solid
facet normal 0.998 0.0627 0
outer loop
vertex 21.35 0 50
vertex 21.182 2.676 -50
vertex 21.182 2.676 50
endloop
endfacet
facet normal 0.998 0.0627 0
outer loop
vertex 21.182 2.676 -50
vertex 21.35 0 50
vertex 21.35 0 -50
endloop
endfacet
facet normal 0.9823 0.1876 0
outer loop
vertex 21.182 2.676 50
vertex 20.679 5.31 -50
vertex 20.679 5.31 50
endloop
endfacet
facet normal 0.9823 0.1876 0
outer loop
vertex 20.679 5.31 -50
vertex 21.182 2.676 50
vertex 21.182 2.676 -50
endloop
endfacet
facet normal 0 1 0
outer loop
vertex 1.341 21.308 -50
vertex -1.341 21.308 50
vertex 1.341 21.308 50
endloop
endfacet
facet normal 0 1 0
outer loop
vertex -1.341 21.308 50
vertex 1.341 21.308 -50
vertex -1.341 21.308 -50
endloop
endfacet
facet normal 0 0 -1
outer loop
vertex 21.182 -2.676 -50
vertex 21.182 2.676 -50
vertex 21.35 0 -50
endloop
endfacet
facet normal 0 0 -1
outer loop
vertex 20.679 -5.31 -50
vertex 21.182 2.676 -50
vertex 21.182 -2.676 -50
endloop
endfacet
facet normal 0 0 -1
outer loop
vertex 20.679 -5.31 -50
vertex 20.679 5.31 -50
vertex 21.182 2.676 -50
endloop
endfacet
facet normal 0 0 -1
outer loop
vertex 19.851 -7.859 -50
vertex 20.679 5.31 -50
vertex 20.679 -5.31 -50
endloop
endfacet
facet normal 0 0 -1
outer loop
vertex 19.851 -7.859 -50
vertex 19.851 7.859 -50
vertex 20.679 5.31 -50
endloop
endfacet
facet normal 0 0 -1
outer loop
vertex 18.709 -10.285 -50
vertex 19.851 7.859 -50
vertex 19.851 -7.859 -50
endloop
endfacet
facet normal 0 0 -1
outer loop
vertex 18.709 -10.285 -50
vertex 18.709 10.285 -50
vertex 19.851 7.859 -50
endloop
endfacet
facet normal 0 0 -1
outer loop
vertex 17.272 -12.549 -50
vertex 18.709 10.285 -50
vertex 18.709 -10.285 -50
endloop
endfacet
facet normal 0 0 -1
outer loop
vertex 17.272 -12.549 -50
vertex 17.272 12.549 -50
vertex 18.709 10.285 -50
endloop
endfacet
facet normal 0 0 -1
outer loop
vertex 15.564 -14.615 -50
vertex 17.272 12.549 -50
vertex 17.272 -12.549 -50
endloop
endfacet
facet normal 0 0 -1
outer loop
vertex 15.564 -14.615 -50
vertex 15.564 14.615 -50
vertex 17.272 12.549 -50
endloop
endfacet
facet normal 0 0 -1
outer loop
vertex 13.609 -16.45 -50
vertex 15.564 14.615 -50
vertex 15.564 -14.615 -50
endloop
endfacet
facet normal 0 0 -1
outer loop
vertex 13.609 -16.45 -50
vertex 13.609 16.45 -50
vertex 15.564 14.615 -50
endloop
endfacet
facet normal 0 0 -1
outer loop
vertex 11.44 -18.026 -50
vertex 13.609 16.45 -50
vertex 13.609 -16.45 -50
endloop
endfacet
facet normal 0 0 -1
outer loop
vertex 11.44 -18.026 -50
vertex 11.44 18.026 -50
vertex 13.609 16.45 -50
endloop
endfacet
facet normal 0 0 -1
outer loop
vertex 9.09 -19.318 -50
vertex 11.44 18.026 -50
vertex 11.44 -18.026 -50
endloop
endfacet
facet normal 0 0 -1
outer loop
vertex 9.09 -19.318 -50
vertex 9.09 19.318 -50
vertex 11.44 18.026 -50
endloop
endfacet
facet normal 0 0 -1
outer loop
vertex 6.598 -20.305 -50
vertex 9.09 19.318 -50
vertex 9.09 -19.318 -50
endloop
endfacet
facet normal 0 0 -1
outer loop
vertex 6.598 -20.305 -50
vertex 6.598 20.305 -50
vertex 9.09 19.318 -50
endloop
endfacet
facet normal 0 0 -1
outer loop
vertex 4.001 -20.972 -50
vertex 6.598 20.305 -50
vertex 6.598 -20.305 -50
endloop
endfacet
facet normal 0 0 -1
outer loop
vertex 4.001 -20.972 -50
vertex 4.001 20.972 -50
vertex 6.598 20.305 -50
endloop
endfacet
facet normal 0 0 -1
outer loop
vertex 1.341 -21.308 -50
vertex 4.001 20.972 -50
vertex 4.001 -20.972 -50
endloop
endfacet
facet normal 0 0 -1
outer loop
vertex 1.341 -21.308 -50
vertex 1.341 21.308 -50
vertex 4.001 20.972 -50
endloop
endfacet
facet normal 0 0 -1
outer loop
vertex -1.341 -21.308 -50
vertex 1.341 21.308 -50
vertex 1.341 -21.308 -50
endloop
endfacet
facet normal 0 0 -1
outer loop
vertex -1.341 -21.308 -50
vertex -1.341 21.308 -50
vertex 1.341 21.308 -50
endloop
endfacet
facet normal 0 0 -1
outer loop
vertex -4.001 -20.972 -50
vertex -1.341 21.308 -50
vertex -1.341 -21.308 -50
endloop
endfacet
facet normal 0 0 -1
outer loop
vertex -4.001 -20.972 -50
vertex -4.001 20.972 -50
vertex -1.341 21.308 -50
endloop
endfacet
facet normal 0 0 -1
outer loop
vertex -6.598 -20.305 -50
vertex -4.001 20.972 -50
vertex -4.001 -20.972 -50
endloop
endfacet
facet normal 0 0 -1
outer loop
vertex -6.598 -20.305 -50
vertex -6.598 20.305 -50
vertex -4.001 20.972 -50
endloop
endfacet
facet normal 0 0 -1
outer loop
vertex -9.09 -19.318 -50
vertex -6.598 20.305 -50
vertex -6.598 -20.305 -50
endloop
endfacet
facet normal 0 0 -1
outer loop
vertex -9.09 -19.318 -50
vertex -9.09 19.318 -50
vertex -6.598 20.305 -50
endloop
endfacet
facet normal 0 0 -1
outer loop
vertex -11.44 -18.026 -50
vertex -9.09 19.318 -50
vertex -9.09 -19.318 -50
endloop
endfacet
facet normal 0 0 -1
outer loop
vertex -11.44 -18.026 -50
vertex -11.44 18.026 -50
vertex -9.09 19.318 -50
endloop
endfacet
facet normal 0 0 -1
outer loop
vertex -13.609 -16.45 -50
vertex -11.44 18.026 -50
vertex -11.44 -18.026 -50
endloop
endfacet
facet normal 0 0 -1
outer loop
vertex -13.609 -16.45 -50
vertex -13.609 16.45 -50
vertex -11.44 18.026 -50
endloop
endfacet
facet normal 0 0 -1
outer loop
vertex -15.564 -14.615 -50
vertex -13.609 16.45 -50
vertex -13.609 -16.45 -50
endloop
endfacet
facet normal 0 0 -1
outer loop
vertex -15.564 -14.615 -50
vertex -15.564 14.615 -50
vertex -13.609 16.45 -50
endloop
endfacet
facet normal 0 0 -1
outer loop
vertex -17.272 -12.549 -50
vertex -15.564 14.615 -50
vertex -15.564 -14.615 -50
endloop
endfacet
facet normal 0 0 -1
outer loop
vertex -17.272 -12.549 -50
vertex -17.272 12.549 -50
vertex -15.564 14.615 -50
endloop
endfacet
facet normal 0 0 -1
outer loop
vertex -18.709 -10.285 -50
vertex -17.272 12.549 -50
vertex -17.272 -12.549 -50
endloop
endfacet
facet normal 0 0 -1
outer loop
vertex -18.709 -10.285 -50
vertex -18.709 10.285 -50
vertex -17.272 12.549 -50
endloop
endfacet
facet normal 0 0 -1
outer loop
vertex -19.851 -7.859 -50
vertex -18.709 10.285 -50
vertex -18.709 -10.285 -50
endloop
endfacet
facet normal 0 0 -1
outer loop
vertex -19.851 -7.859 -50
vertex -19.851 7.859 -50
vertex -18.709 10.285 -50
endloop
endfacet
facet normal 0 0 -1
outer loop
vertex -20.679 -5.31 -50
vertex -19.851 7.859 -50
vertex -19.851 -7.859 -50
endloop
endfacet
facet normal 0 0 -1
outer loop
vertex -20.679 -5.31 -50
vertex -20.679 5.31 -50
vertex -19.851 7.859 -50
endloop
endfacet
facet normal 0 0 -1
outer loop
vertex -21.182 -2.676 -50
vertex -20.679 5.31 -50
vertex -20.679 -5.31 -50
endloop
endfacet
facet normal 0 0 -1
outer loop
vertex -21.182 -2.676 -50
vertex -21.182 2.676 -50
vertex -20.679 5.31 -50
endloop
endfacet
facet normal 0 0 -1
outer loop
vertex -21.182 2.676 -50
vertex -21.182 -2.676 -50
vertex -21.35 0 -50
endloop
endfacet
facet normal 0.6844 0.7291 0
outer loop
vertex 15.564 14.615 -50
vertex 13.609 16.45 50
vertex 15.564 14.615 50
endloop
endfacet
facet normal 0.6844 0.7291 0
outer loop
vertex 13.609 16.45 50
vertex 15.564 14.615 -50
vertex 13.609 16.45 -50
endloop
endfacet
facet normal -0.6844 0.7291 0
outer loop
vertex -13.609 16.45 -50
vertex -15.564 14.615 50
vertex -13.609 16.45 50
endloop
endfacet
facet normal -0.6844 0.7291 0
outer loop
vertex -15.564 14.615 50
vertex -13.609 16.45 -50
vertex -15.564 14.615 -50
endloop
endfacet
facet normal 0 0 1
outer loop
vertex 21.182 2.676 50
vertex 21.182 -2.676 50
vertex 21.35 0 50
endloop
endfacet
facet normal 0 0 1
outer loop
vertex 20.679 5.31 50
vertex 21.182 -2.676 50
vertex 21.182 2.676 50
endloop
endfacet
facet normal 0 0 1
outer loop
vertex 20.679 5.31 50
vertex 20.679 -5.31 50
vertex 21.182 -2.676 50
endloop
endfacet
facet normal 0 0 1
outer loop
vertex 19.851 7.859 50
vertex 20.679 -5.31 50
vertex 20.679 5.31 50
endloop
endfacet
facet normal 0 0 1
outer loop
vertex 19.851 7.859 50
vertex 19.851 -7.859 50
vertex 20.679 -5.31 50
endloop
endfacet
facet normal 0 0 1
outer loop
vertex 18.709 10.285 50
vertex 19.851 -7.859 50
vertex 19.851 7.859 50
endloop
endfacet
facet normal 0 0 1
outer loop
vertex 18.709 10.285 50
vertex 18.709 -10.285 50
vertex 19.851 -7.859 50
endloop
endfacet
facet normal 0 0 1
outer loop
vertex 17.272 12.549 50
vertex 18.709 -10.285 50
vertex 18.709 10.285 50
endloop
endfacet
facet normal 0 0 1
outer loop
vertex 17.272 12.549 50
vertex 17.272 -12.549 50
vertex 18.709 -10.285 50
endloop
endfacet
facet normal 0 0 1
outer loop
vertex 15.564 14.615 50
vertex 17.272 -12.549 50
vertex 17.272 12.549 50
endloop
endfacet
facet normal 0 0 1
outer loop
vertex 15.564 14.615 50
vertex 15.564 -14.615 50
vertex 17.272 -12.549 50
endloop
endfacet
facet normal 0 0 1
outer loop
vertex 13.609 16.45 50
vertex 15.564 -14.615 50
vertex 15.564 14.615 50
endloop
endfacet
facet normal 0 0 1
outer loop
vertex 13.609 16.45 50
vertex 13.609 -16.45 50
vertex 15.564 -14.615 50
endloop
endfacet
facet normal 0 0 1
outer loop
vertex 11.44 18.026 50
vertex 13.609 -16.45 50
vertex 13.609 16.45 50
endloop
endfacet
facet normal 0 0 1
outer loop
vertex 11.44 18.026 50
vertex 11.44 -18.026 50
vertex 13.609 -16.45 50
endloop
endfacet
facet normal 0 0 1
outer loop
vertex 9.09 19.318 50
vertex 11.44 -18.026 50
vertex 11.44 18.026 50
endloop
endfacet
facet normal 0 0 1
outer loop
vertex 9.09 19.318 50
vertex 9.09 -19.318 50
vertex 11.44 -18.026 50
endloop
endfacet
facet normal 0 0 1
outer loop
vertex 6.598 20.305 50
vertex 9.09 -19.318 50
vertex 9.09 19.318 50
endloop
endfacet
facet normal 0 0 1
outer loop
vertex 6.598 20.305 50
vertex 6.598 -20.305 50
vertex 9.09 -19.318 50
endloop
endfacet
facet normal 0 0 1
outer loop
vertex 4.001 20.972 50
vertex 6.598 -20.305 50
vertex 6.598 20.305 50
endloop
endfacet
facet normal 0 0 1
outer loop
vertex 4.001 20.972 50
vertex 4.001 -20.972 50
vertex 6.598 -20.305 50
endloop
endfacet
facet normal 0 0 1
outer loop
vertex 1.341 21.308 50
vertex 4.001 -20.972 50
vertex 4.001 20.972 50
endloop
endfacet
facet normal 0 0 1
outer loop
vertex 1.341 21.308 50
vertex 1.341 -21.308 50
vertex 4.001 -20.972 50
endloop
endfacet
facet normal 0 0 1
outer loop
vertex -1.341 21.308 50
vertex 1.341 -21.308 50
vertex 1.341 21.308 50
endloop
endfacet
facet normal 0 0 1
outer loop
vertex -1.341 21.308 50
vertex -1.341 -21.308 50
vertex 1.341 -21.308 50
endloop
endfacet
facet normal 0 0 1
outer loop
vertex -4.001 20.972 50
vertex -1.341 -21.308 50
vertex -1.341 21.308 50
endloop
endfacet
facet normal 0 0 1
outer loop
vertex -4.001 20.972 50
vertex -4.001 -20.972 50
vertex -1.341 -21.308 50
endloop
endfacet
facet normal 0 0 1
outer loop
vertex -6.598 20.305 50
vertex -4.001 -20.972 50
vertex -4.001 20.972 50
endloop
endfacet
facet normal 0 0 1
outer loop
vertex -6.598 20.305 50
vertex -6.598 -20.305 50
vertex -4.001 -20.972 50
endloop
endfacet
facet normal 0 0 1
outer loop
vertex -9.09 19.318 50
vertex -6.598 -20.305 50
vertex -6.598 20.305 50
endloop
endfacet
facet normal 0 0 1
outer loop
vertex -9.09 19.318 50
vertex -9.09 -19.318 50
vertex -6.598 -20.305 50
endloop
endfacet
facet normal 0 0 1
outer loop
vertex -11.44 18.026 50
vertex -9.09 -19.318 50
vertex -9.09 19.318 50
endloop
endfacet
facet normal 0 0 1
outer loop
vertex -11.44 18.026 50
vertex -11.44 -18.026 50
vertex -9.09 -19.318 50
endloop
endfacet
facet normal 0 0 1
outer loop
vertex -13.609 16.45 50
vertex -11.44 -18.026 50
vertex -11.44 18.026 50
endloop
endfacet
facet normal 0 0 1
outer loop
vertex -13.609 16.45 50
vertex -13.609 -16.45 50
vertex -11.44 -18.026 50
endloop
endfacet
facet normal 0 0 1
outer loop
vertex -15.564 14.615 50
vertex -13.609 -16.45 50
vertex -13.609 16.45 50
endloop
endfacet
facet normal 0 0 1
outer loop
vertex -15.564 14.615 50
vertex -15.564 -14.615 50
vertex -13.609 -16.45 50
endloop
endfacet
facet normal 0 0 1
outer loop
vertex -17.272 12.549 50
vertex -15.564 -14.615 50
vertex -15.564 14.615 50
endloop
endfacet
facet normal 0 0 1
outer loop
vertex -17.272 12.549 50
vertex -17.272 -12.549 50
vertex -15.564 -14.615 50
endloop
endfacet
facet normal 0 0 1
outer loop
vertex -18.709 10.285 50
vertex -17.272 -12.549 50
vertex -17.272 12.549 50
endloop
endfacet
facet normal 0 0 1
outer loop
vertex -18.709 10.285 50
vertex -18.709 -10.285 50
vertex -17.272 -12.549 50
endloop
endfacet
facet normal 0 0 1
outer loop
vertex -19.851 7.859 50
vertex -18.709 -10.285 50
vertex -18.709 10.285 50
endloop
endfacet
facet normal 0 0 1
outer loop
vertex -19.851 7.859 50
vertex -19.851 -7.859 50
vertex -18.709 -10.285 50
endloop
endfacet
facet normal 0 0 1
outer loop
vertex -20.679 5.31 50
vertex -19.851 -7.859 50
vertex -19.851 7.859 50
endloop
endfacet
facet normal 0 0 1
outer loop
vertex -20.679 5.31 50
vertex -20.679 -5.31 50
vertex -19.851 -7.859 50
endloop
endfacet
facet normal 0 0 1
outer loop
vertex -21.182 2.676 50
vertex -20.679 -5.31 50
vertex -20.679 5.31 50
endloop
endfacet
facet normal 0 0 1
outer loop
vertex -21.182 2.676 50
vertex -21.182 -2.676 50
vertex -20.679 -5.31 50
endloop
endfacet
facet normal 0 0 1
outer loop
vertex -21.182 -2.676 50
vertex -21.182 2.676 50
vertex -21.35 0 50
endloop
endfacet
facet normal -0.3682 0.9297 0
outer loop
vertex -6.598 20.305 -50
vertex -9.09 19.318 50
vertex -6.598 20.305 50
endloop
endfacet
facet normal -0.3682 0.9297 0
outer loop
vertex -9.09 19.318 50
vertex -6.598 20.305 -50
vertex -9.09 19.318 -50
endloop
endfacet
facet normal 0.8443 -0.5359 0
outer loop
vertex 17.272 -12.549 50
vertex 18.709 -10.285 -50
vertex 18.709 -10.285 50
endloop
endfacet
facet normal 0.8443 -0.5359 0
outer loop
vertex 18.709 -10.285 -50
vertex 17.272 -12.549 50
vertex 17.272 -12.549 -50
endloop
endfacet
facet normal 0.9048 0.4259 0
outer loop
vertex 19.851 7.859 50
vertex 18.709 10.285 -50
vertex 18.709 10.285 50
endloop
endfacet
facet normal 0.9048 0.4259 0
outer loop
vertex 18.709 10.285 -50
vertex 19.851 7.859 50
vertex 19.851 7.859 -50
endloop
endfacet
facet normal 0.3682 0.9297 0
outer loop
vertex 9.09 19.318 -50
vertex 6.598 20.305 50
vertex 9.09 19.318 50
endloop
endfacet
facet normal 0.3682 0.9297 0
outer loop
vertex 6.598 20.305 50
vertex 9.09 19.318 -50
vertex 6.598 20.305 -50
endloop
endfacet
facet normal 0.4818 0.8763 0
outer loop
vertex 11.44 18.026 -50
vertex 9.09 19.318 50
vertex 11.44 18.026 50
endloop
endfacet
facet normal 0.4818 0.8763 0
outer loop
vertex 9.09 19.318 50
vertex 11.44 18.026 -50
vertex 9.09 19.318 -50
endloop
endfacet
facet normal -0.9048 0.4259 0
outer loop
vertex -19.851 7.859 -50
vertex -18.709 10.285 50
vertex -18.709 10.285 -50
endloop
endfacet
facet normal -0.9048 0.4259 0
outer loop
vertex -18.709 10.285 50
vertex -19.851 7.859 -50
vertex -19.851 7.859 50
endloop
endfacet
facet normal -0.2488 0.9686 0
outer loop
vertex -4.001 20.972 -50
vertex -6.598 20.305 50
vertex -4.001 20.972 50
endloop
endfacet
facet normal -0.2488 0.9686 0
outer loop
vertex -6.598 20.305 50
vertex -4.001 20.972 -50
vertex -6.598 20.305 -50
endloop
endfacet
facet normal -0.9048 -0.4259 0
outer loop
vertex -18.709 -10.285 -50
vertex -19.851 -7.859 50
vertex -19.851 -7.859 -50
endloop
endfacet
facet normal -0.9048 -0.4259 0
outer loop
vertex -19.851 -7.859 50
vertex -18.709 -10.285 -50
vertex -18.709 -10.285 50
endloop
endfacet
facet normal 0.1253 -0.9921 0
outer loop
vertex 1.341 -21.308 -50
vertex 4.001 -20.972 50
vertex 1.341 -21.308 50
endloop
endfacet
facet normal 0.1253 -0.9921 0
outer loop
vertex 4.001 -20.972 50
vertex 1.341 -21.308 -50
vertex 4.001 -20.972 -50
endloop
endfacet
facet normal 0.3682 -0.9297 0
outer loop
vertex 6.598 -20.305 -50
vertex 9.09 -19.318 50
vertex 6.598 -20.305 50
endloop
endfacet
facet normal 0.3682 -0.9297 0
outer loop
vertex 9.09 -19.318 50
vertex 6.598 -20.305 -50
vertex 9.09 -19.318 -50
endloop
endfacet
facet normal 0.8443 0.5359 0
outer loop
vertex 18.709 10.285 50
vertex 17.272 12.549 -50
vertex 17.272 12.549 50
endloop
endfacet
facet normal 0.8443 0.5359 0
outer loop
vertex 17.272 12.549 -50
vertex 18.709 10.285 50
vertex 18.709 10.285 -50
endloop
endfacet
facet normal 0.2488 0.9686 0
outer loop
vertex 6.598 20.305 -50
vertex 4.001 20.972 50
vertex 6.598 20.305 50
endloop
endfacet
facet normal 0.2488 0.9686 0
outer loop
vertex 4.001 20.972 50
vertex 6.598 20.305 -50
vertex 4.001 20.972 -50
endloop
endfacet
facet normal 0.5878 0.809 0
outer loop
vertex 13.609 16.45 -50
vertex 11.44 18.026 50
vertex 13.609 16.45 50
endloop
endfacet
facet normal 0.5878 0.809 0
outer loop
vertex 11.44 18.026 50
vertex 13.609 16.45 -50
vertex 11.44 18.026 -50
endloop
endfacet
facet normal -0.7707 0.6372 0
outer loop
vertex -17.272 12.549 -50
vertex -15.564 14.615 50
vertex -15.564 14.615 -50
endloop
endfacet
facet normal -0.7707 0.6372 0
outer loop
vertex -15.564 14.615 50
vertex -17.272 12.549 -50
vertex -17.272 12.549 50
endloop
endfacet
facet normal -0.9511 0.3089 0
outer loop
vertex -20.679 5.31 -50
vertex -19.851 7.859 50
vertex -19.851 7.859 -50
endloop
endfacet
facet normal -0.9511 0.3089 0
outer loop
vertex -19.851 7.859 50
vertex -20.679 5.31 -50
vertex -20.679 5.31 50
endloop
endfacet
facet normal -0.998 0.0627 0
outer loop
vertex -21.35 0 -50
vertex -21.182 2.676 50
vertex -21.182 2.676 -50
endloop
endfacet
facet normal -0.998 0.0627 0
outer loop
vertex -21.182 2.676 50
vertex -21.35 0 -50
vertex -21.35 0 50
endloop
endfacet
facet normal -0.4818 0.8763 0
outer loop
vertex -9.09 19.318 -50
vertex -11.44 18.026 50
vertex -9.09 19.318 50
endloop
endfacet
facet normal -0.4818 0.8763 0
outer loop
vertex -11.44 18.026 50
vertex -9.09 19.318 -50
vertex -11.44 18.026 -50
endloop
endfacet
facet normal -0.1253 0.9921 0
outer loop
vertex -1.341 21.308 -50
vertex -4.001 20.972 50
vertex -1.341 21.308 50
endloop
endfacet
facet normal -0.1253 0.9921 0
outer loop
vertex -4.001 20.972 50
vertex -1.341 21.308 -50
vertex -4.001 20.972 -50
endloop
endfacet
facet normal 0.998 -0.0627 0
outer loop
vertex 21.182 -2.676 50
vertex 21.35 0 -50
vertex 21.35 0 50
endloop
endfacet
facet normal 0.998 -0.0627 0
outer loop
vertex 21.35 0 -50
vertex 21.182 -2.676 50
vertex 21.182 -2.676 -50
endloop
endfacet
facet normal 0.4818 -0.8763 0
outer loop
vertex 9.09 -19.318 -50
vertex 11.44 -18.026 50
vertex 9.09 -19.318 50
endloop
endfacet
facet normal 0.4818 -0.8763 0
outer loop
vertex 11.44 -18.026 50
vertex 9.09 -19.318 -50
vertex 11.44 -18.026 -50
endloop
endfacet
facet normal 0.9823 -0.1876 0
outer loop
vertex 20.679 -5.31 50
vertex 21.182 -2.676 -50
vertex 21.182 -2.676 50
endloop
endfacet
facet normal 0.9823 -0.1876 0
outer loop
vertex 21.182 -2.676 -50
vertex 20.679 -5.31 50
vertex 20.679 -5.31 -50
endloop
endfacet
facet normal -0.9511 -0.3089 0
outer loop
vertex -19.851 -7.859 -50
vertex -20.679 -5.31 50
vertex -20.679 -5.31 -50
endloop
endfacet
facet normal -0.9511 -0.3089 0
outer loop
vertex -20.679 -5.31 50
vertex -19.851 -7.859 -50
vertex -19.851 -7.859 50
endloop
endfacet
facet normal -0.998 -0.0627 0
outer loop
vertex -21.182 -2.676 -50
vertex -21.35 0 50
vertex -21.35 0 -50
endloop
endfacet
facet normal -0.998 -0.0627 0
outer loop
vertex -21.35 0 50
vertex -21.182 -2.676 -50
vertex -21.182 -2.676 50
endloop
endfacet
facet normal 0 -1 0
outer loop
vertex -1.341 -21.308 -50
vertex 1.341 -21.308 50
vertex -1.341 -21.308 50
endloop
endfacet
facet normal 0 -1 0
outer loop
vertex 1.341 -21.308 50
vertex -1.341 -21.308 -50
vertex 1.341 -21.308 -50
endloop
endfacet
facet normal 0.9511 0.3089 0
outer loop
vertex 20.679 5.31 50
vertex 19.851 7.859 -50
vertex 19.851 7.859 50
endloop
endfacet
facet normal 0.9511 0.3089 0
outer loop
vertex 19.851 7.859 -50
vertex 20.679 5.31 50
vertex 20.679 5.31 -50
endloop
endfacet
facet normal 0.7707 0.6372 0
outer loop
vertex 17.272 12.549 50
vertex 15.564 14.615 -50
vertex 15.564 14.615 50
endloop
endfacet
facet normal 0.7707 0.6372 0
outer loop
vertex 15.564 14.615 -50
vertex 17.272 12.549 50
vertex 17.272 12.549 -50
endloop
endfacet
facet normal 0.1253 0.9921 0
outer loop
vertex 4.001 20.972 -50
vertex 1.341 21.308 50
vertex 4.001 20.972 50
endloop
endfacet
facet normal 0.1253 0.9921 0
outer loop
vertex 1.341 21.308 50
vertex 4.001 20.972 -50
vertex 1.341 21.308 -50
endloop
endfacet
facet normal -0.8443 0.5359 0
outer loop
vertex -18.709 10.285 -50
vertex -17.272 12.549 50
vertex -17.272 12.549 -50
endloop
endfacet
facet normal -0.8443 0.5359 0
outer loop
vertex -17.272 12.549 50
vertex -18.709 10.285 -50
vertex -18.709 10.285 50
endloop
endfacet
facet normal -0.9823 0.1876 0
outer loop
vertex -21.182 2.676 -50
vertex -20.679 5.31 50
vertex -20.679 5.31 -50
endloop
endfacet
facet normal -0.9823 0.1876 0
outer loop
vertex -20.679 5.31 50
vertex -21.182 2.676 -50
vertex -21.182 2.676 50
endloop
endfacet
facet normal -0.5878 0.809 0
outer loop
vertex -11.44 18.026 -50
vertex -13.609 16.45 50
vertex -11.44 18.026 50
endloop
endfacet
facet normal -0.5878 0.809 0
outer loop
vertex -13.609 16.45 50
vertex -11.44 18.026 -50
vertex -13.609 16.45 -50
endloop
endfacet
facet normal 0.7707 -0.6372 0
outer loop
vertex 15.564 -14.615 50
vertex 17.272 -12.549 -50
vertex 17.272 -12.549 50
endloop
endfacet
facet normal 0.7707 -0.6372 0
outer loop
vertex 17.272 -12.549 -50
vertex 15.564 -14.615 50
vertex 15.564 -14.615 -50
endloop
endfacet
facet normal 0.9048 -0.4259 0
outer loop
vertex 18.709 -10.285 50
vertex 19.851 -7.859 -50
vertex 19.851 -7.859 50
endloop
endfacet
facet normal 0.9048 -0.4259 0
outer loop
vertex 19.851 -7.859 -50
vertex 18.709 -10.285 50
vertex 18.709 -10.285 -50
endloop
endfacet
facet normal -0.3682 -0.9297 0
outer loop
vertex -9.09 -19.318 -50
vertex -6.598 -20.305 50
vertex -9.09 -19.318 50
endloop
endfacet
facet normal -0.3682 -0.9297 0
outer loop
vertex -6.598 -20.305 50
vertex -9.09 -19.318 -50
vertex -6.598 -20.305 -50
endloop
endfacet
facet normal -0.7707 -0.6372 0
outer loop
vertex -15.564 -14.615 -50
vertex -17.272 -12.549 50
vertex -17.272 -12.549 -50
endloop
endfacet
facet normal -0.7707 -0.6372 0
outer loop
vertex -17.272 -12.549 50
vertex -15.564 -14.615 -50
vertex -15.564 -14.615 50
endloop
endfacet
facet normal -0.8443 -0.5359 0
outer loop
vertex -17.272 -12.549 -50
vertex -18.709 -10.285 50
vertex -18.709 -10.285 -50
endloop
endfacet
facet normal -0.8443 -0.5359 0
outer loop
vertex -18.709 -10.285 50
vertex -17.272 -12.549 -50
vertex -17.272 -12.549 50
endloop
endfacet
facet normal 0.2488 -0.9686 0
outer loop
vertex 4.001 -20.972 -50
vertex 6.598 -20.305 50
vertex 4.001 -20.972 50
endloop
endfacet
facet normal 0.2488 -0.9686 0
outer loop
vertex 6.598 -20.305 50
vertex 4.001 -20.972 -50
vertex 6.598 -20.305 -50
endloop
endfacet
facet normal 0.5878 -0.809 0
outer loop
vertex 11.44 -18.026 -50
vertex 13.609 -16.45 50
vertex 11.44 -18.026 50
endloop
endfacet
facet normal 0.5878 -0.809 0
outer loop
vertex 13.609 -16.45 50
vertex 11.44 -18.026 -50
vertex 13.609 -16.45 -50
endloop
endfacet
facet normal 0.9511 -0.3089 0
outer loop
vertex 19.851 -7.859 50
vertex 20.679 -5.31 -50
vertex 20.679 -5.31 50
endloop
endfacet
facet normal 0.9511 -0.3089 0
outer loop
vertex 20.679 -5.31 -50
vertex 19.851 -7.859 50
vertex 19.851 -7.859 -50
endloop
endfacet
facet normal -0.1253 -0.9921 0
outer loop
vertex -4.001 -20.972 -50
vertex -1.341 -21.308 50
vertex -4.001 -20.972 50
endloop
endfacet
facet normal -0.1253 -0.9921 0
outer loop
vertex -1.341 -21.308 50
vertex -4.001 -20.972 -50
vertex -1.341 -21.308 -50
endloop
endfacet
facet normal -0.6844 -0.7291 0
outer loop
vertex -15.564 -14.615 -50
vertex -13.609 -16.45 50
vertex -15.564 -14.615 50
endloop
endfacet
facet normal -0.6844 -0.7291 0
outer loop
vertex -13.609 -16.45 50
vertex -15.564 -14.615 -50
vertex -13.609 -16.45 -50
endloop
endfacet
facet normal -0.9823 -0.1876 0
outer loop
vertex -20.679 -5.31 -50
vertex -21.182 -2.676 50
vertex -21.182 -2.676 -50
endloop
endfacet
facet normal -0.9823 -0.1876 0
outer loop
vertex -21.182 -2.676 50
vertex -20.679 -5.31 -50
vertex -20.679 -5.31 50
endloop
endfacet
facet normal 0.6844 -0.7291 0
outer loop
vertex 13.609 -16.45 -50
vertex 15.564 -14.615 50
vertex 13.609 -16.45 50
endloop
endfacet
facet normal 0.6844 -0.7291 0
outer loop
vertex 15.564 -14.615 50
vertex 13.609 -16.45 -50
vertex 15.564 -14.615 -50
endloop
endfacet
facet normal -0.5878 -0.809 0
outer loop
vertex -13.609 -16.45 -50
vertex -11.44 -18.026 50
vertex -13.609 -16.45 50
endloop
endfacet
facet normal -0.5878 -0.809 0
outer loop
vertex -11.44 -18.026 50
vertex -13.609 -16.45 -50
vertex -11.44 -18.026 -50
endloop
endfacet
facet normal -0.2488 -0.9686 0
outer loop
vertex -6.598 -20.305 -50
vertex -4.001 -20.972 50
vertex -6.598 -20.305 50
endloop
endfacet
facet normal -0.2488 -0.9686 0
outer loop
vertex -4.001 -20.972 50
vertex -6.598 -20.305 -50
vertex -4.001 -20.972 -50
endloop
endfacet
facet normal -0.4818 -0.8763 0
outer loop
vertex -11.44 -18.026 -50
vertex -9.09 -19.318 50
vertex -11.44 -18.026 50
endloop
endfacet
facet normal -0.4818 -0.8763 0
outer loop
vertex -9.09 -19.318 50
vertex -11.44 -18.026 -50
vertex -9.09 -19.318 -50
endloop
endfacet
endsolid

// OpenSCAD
$fn = 50;


difference() {
	union() {
		translate(v = [0, 0, -50.0000000000]) {
			cylinder(h = 100, r = 21.3500000000);
		}
	}
	union() {
		translate(v = [0, 0, -100.0000000000]) {
			cylinder(h = 200, r = 0);
		}
	}
}
